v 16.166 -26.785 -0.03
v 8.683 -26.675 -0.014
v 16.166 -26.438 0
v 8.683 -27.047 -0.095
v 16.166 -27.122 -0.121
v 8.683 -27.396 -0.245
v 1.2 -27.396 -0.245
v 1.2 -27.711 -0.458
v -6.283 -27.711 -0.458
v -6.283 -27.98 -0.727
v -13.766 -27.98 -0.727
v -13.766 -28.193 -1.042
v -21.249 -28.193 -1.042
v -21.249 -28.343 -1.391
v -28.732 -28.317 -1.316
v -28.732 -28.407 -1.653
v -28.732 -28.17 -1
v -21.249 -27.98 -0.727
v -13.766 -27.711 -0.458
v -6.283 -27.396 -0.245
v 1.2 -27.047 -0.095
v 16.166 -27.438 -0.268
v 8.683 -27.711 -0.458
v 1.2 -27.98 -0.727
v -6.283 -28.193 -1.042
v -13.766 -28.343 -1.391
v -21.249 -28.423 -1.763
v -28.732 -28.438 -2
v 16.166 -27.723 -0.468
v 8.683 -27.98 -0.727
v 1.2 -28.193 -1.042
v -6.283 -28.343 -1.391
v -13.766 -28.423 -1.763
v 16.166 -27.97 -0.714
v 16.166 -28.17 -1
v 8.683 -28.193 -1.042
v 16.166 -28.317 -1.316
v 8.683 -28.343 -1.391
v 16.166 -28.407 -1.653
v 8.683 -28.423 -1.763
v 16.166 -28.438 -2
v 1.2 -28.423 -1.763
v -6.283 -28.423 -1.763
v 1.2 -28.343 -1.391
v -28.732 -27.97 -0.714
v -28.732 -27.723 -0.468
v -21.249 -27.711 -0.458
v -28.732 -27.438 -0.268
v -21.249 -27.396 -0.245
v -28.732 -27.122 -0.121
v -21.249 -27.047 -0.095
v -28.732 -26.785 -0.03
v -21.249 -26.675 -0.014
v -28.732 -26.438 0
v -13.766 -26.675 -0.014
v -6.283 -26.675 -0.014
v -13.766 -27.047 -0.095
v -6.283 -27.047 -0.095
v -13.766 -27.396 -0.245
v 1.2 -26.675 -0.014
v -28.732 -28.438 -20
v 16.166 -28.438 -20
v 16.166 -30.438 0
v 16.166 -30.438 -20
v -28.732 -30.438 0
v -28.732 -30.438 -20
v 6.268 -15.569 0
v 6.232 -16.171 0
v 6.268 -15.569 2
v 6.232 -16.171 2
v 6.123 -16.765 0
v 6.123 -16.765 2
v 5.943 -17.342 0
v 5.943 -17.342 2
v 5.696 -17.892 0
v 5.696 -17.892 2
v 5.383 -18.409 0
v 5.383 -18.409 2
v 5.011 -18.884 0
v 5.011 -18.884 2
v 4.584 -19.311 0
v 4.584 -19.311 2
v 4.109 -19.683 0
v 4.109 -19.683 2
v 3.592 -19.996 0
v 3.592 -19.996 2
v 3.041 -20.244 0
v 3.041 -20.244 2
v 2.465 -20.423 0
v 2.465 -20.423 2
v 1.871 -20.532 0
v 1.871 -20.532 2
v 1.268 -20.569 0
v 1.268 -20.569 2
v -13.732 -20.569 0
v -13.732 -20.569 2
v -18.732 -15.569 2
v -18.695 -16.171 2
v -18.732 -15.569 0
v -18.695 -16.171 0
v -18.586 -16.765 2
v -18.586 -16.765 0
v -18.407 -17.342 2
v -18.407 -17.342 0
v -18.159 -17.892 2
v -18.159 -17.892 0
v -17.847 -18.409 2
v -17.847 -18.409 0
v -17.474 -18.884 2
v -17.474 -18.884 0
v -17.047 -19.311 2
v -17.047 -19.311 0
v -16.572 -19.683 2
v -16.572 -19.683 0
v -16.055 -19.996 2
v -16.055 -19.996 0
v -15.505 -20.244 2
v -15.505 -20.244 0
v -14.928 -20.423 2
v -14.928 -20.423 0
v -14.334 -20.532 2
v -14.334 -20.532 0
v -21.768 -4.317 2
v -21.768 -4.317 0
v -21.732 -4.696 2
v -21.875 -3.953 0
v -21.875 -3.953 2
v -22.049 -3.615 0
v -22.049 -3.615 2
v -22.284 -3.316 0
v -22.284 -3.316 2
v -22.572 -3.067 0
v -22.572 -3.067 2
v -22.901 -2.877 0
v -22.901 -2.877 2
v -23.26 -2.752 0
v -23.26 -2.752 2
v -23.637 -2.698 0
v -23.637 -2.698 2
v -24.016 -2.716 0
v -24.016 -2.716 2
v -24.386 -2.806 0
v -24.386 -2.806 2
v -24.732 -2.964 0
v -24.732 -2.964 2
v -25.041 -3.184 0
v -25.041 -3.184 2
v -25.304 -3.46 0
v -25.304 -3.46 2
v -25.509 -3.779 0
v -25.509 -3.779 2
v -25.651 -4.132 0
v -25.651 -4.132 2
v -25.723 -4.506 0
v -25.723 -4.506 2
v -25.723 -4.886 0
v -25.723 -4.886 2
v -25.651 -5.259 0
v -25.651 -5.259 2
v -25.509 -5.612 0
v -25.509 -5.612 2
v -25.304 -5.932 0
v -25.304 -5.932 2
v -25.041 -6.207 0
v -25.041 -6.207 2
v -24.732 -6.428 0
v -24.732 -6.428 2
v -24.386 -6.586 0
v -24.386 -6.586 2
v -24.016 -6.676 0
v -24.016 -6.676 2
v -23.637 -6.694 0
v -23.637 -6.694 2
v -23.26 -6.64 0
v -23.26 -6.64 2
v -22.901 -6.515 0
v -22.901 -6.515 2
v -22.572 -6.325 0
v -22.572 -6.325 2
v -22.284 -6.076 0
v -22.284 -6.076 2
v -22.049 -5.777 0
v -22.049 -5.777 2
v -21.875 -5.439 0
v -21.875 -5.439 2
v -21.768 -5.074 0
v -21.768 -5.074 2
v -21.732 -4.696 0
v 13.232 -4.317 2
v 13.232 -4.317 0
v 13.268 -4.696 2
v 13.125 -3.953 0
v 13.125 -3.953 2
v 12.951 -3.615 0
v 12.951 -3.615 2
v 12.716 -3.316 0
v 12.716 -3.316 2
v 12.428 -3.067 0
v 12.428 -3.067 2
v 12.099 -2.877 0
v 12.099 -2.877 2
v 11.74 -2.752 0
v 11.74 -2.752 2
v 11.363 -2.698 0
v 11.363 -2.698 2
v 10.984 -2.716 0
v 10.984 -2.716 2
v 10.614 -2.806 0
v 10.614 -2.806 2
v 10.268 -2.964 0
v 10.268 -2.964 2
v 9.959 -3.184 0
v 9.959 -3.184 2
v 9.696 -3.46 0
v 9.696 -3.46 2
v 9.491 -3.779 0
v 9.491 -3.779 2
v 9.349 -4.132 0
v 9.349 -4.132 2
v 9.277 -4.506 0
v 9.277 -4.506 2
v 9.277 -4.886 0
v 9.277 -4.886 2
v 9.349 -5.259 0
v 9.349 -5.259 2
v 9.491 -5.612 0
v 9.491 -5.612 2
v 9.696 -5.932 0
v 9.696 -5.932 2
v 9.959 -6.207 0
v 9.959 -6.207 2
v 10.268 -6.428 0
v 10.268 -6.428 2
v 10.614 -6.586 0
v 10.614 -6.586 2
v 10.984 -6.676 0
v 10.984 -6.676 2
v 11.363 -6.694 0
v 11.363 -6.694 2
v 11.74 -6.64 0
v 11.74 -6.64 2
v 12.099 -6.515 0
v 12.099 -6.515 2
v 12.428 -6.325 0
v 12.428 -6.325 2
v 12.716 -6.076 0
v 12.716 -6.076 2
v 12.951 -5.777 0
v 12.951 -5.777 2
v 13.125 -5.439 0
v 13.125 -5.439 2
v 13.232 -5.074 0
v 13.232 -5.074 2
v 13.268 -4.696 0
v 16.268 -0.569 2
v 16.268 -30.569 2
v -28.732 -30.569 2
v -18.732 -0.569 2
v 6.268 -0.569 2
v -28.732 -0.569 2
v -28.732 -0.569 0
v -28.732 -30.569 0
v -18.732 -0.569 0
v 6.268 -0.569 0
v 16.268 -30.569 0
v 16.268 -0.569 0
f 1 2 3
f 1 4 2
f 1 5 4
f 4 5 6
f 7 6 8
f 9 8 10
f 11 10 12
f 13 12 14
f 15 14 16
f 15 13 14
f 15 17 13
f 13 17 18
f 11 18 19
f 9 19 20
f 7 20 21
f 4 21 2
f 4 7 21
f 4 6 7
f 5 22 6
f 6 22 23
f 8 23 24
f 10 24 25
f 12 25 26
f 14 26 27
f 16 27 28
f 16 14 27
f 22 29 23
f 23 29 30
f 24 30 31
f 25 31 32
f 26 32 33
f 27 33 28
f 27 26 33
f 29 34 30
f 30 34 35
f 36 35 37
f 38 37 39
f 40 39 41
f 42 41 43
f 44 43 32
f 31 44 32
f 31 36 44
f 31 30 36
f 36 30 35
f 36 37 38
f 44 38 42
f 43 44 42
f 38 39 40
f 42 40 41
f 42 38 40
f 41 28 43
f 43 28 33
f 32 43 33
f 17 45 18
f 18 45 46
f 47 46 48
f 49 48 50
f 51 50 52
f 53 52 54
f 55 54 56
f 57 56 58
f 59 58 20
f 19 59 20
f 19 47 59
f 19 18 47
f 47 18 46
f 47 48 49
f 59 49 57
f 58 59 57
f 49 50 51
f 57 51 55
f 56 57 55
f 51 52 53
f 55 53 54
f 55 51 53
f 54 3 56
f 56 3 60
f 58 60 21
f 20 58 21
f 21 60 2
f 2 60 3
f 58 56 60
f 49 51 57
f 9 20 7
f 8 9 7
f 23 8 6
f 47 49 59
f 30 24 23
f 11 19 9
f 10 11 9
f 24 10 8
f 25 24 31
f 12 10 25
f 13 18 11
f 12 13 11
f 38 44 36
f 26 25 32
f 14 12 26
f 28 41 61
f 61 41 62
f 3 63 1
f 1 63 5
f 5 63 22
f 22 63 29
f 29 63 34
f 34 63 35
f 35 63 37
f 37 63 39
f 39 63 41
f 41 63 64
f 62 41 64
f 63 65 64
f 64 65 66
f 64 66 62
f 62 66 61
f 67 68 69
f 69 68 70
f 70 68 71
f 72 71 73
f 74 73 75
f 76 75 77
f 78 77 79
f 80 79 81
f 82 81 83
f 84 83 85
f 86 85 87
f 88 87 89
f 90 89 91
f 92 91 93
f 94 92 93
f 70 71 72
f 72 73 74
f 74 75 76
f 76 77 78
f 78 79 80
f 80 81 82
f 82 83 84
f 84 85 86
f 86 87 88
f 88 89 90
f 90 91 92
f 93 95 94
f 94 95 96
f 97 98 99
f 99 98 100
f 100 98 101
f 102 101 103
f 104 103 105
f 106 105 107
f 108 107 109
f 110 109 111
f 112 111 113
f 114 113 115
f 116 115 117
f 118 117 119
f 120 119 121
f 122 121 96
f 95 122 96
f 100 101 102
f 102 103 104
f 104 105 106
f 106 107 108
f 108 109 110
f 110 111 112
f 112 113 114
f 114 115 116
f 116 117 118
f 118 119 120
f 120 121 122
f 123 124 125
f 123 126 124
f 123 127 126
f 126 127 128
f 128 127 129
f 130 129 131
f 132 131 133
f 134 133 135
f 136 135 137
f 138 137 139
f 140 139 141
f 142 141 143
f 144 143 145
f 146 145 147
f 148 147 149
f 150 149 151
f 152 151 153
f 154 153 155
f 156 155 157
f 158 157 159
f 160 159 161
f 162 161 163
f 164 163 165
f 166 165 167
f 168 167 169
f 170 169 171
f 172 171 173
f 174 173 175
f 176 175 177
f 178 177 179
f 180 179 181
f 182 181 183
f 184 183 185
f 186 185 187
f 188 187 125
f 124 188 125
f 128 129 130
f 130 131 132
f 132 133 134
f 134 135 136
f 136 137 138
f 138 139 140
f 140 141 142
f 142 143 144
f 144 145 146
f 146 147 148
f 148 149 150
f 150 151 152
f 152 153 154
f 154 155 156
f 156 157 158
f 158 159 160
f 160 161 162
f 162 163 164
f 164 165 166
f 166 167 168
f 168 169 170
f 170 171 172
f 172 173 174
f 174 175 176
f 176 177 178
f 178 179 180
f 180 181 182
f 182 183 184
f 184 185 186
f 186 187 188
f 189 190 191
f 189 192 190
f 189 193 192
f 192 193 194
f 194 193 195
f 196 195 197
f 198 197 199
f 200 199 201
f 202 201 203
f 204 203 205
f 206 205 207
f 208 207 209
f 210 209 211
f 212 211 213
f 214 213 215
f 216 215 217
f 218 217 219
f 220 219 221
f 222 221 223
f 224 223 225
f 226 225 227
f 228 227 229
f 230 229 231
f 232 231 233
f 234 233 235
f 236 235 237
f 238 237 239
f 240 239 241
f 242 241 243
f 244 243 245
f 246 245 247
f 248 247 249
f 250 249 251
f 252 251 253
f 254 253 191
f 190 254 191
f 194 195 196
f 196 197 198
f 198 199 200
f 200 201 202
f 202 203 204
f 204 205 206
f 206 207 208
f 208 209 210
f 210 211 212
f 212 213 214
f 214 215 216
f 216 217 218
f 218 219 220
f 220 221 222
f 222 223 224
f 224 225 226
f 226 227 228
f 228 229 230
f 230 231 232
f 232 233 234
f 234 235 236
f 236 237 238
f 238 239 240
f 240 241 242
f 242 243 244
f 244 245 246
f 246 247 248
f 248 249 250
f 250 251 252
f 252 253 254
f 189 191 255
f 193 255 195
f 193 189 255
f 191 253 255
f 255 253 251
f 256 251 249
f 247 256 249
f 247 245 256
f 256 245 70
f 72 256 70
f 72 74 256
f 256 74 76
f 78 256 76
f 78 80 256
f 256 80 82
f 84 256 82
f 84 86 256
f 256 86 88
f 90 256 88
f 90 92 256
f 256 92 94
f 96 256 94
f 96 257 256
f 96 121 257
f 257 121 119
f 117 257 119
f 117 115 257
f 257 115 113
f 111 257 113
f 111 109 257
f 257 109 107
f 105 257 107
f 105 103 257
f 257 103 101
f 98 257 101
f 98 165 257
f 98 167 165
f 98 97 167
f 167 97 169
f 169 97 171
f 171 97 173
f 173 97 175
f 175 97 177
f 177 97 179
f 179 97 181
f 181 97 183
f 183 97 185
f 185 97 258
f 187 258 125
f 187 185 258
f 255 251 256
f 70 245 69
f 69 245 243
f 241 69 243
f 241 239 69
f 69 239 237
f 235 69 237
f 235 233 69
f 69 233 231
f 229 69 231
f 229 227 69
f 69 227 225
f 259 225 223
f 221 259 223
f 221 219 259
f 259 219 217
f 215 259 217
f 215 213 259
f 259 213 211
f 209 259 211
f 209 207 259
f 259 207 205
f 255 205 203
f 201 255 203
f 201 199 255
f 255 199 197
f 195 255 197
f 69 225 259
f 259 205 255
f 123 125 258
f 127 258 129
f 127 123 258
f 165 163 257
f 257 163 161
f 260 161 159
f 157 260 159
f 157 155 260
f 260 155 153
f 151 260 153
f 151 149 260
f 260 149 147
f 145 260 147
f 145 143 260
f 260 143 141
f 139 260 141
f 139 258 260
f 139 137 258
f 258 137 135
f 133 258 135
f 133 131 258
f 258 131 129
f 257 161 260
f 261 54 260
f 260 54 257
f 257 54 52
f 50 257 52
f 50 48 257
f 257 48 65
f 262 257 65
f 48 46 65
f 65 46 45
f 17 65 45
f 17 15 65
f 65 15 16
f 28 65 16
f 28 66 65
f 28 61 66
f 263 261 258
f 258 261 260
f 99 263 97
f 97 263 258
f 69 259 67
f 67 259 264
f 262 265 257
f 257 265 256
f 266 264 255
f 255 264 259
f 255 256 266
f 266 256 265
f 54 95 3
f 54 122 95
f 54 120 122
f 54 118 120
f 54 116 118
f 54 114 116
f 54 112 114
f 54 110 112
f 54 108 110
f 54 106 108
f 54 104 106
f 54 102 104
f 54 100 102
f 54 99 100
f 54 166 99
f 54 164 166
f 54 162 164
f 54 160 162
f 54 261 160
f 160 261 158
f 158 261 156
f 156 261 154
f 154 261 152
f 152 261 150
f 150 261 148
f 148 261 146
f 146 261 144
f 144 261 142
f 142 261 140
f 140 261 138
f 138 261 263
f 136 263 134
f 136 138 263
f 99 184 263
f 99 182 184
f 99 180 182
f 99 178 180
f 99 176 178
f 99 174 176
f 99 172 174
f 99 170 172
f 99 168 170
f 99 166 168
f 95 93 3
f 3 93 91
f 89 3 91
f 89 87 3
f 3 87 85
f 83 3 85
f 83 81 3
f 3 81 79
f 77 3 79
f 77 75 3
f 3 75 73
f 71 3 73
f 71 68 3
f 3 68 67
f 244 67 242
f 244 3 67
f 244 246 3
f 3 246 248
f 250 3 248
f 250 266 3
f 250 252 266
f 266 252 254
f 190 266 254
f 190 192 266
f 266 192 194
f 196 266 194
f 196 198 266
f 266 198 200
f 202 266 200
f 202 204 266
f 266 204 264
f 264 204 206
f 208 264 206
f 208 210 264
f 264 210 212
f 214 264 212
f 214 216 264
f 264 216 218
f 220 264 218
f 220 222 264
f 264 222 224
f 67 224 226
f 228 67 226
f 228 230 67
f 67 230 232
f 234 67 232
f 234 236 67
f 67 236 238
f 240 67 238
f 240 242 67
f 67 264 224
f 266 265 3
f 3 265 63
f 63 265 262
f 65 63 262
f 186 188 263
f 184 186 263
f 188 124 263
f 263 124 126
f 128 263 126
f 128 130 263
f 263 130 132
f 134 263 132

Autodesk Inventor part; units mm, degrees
ref_plane "YZ Plane" through (0, 0, 0) normal (1, 0, 0) x (0, 1, 0)
ref_plane "XZ Plane" through (0, 0, 0) normal (0, 1, 0) x (-1, 0, 0)
ref_plane "XY Plane" through (0, 0, 0) normal (0, 0, 1) x (1, 0, 0)
sketch "Sketch1" plane through (0, 0, 0) normal (0, 0, 1) x (1, 0, 0)
  line L0 (-28.7318, -0.5685) -> (-18.7318, -0.5685)
  line L1 (-18.7318, -0.5685) -> (-18.7318, -30.5685)
  line L2 (-18.7318, -30.5685) -> (-28.7318, -30.5685)
  line L3 (-28.7318, -30.5685) -> (-28.7318, -0.5685)
  line L4 (-28.7318, -30.5685) -> (16.2682, -30.5685)
  line L5 (16.2682, -30.5685) -> (16.2682, -20.5685)
  line L6 (16.2682, -20.5685) -> (-28.7318, -20.5685)
  line L7 (-28.7318, -20.5685) -> (-28.7318, -30.5685)
  line L8 (16.2682, -30.5685) -> (6.2682, -30.5685)
  line L9 (6.2682, -30.5685) -> (6.2682, -0.5685)
  line L10 (6.2682, -0.5685) -> (16.2682, -0.5685)
  line L11 (16.2682, -0.5685) -> (16.2682, -30.5685)
  circle A0 centre (-23.7318, -4.6959) radius 2
  circle A1 centre (11.2682, -4.6959) radius 2
  point P0 (0, 0)
  dimension "d0" = 45
  dimension "d1" = 10
  dimension "d2" = 10
  dimension "d3" = 10
  dimension "d4" = 30
  dimension "d5" = 4
  dimension "d6" = 4
extrude "Extrusion1" add sketch "Sketch1" along normal blind 2
fillet "Fillet1" radius 5 2 edges at (-18.7318, -20.5685, 1) (6.2682, -20.5685, 1)
sketch "Sketch2" plane through (0, 0, 0) normal (0, 0, -1) x (-1, 0, 0)
  line L0 (28.7318, -0.5685) -> (28.7318, -30.5685) projected
  line L1 (-16.1665, -30.4376) -> (28.7318, -30.4376)
  line L2 (28.7318, -30.4376) -> (28.7318, -28.4376)
  line L3 (28.7318, -28.4376) -> (-16.1665, -28.4376)
  line L4 (-16.1665, -28.4376) -> (-16.1665, -30.4376)
  point P0 (0, 0)
  dimension "d10" = 2
extrude "Extrusion2" add sketch "Sketch2" along normal blind 20
fillet "Fillet2" radius 2 1 edges at (-6.2826, -28.4376, 0)
properties part number "stpper holder"
